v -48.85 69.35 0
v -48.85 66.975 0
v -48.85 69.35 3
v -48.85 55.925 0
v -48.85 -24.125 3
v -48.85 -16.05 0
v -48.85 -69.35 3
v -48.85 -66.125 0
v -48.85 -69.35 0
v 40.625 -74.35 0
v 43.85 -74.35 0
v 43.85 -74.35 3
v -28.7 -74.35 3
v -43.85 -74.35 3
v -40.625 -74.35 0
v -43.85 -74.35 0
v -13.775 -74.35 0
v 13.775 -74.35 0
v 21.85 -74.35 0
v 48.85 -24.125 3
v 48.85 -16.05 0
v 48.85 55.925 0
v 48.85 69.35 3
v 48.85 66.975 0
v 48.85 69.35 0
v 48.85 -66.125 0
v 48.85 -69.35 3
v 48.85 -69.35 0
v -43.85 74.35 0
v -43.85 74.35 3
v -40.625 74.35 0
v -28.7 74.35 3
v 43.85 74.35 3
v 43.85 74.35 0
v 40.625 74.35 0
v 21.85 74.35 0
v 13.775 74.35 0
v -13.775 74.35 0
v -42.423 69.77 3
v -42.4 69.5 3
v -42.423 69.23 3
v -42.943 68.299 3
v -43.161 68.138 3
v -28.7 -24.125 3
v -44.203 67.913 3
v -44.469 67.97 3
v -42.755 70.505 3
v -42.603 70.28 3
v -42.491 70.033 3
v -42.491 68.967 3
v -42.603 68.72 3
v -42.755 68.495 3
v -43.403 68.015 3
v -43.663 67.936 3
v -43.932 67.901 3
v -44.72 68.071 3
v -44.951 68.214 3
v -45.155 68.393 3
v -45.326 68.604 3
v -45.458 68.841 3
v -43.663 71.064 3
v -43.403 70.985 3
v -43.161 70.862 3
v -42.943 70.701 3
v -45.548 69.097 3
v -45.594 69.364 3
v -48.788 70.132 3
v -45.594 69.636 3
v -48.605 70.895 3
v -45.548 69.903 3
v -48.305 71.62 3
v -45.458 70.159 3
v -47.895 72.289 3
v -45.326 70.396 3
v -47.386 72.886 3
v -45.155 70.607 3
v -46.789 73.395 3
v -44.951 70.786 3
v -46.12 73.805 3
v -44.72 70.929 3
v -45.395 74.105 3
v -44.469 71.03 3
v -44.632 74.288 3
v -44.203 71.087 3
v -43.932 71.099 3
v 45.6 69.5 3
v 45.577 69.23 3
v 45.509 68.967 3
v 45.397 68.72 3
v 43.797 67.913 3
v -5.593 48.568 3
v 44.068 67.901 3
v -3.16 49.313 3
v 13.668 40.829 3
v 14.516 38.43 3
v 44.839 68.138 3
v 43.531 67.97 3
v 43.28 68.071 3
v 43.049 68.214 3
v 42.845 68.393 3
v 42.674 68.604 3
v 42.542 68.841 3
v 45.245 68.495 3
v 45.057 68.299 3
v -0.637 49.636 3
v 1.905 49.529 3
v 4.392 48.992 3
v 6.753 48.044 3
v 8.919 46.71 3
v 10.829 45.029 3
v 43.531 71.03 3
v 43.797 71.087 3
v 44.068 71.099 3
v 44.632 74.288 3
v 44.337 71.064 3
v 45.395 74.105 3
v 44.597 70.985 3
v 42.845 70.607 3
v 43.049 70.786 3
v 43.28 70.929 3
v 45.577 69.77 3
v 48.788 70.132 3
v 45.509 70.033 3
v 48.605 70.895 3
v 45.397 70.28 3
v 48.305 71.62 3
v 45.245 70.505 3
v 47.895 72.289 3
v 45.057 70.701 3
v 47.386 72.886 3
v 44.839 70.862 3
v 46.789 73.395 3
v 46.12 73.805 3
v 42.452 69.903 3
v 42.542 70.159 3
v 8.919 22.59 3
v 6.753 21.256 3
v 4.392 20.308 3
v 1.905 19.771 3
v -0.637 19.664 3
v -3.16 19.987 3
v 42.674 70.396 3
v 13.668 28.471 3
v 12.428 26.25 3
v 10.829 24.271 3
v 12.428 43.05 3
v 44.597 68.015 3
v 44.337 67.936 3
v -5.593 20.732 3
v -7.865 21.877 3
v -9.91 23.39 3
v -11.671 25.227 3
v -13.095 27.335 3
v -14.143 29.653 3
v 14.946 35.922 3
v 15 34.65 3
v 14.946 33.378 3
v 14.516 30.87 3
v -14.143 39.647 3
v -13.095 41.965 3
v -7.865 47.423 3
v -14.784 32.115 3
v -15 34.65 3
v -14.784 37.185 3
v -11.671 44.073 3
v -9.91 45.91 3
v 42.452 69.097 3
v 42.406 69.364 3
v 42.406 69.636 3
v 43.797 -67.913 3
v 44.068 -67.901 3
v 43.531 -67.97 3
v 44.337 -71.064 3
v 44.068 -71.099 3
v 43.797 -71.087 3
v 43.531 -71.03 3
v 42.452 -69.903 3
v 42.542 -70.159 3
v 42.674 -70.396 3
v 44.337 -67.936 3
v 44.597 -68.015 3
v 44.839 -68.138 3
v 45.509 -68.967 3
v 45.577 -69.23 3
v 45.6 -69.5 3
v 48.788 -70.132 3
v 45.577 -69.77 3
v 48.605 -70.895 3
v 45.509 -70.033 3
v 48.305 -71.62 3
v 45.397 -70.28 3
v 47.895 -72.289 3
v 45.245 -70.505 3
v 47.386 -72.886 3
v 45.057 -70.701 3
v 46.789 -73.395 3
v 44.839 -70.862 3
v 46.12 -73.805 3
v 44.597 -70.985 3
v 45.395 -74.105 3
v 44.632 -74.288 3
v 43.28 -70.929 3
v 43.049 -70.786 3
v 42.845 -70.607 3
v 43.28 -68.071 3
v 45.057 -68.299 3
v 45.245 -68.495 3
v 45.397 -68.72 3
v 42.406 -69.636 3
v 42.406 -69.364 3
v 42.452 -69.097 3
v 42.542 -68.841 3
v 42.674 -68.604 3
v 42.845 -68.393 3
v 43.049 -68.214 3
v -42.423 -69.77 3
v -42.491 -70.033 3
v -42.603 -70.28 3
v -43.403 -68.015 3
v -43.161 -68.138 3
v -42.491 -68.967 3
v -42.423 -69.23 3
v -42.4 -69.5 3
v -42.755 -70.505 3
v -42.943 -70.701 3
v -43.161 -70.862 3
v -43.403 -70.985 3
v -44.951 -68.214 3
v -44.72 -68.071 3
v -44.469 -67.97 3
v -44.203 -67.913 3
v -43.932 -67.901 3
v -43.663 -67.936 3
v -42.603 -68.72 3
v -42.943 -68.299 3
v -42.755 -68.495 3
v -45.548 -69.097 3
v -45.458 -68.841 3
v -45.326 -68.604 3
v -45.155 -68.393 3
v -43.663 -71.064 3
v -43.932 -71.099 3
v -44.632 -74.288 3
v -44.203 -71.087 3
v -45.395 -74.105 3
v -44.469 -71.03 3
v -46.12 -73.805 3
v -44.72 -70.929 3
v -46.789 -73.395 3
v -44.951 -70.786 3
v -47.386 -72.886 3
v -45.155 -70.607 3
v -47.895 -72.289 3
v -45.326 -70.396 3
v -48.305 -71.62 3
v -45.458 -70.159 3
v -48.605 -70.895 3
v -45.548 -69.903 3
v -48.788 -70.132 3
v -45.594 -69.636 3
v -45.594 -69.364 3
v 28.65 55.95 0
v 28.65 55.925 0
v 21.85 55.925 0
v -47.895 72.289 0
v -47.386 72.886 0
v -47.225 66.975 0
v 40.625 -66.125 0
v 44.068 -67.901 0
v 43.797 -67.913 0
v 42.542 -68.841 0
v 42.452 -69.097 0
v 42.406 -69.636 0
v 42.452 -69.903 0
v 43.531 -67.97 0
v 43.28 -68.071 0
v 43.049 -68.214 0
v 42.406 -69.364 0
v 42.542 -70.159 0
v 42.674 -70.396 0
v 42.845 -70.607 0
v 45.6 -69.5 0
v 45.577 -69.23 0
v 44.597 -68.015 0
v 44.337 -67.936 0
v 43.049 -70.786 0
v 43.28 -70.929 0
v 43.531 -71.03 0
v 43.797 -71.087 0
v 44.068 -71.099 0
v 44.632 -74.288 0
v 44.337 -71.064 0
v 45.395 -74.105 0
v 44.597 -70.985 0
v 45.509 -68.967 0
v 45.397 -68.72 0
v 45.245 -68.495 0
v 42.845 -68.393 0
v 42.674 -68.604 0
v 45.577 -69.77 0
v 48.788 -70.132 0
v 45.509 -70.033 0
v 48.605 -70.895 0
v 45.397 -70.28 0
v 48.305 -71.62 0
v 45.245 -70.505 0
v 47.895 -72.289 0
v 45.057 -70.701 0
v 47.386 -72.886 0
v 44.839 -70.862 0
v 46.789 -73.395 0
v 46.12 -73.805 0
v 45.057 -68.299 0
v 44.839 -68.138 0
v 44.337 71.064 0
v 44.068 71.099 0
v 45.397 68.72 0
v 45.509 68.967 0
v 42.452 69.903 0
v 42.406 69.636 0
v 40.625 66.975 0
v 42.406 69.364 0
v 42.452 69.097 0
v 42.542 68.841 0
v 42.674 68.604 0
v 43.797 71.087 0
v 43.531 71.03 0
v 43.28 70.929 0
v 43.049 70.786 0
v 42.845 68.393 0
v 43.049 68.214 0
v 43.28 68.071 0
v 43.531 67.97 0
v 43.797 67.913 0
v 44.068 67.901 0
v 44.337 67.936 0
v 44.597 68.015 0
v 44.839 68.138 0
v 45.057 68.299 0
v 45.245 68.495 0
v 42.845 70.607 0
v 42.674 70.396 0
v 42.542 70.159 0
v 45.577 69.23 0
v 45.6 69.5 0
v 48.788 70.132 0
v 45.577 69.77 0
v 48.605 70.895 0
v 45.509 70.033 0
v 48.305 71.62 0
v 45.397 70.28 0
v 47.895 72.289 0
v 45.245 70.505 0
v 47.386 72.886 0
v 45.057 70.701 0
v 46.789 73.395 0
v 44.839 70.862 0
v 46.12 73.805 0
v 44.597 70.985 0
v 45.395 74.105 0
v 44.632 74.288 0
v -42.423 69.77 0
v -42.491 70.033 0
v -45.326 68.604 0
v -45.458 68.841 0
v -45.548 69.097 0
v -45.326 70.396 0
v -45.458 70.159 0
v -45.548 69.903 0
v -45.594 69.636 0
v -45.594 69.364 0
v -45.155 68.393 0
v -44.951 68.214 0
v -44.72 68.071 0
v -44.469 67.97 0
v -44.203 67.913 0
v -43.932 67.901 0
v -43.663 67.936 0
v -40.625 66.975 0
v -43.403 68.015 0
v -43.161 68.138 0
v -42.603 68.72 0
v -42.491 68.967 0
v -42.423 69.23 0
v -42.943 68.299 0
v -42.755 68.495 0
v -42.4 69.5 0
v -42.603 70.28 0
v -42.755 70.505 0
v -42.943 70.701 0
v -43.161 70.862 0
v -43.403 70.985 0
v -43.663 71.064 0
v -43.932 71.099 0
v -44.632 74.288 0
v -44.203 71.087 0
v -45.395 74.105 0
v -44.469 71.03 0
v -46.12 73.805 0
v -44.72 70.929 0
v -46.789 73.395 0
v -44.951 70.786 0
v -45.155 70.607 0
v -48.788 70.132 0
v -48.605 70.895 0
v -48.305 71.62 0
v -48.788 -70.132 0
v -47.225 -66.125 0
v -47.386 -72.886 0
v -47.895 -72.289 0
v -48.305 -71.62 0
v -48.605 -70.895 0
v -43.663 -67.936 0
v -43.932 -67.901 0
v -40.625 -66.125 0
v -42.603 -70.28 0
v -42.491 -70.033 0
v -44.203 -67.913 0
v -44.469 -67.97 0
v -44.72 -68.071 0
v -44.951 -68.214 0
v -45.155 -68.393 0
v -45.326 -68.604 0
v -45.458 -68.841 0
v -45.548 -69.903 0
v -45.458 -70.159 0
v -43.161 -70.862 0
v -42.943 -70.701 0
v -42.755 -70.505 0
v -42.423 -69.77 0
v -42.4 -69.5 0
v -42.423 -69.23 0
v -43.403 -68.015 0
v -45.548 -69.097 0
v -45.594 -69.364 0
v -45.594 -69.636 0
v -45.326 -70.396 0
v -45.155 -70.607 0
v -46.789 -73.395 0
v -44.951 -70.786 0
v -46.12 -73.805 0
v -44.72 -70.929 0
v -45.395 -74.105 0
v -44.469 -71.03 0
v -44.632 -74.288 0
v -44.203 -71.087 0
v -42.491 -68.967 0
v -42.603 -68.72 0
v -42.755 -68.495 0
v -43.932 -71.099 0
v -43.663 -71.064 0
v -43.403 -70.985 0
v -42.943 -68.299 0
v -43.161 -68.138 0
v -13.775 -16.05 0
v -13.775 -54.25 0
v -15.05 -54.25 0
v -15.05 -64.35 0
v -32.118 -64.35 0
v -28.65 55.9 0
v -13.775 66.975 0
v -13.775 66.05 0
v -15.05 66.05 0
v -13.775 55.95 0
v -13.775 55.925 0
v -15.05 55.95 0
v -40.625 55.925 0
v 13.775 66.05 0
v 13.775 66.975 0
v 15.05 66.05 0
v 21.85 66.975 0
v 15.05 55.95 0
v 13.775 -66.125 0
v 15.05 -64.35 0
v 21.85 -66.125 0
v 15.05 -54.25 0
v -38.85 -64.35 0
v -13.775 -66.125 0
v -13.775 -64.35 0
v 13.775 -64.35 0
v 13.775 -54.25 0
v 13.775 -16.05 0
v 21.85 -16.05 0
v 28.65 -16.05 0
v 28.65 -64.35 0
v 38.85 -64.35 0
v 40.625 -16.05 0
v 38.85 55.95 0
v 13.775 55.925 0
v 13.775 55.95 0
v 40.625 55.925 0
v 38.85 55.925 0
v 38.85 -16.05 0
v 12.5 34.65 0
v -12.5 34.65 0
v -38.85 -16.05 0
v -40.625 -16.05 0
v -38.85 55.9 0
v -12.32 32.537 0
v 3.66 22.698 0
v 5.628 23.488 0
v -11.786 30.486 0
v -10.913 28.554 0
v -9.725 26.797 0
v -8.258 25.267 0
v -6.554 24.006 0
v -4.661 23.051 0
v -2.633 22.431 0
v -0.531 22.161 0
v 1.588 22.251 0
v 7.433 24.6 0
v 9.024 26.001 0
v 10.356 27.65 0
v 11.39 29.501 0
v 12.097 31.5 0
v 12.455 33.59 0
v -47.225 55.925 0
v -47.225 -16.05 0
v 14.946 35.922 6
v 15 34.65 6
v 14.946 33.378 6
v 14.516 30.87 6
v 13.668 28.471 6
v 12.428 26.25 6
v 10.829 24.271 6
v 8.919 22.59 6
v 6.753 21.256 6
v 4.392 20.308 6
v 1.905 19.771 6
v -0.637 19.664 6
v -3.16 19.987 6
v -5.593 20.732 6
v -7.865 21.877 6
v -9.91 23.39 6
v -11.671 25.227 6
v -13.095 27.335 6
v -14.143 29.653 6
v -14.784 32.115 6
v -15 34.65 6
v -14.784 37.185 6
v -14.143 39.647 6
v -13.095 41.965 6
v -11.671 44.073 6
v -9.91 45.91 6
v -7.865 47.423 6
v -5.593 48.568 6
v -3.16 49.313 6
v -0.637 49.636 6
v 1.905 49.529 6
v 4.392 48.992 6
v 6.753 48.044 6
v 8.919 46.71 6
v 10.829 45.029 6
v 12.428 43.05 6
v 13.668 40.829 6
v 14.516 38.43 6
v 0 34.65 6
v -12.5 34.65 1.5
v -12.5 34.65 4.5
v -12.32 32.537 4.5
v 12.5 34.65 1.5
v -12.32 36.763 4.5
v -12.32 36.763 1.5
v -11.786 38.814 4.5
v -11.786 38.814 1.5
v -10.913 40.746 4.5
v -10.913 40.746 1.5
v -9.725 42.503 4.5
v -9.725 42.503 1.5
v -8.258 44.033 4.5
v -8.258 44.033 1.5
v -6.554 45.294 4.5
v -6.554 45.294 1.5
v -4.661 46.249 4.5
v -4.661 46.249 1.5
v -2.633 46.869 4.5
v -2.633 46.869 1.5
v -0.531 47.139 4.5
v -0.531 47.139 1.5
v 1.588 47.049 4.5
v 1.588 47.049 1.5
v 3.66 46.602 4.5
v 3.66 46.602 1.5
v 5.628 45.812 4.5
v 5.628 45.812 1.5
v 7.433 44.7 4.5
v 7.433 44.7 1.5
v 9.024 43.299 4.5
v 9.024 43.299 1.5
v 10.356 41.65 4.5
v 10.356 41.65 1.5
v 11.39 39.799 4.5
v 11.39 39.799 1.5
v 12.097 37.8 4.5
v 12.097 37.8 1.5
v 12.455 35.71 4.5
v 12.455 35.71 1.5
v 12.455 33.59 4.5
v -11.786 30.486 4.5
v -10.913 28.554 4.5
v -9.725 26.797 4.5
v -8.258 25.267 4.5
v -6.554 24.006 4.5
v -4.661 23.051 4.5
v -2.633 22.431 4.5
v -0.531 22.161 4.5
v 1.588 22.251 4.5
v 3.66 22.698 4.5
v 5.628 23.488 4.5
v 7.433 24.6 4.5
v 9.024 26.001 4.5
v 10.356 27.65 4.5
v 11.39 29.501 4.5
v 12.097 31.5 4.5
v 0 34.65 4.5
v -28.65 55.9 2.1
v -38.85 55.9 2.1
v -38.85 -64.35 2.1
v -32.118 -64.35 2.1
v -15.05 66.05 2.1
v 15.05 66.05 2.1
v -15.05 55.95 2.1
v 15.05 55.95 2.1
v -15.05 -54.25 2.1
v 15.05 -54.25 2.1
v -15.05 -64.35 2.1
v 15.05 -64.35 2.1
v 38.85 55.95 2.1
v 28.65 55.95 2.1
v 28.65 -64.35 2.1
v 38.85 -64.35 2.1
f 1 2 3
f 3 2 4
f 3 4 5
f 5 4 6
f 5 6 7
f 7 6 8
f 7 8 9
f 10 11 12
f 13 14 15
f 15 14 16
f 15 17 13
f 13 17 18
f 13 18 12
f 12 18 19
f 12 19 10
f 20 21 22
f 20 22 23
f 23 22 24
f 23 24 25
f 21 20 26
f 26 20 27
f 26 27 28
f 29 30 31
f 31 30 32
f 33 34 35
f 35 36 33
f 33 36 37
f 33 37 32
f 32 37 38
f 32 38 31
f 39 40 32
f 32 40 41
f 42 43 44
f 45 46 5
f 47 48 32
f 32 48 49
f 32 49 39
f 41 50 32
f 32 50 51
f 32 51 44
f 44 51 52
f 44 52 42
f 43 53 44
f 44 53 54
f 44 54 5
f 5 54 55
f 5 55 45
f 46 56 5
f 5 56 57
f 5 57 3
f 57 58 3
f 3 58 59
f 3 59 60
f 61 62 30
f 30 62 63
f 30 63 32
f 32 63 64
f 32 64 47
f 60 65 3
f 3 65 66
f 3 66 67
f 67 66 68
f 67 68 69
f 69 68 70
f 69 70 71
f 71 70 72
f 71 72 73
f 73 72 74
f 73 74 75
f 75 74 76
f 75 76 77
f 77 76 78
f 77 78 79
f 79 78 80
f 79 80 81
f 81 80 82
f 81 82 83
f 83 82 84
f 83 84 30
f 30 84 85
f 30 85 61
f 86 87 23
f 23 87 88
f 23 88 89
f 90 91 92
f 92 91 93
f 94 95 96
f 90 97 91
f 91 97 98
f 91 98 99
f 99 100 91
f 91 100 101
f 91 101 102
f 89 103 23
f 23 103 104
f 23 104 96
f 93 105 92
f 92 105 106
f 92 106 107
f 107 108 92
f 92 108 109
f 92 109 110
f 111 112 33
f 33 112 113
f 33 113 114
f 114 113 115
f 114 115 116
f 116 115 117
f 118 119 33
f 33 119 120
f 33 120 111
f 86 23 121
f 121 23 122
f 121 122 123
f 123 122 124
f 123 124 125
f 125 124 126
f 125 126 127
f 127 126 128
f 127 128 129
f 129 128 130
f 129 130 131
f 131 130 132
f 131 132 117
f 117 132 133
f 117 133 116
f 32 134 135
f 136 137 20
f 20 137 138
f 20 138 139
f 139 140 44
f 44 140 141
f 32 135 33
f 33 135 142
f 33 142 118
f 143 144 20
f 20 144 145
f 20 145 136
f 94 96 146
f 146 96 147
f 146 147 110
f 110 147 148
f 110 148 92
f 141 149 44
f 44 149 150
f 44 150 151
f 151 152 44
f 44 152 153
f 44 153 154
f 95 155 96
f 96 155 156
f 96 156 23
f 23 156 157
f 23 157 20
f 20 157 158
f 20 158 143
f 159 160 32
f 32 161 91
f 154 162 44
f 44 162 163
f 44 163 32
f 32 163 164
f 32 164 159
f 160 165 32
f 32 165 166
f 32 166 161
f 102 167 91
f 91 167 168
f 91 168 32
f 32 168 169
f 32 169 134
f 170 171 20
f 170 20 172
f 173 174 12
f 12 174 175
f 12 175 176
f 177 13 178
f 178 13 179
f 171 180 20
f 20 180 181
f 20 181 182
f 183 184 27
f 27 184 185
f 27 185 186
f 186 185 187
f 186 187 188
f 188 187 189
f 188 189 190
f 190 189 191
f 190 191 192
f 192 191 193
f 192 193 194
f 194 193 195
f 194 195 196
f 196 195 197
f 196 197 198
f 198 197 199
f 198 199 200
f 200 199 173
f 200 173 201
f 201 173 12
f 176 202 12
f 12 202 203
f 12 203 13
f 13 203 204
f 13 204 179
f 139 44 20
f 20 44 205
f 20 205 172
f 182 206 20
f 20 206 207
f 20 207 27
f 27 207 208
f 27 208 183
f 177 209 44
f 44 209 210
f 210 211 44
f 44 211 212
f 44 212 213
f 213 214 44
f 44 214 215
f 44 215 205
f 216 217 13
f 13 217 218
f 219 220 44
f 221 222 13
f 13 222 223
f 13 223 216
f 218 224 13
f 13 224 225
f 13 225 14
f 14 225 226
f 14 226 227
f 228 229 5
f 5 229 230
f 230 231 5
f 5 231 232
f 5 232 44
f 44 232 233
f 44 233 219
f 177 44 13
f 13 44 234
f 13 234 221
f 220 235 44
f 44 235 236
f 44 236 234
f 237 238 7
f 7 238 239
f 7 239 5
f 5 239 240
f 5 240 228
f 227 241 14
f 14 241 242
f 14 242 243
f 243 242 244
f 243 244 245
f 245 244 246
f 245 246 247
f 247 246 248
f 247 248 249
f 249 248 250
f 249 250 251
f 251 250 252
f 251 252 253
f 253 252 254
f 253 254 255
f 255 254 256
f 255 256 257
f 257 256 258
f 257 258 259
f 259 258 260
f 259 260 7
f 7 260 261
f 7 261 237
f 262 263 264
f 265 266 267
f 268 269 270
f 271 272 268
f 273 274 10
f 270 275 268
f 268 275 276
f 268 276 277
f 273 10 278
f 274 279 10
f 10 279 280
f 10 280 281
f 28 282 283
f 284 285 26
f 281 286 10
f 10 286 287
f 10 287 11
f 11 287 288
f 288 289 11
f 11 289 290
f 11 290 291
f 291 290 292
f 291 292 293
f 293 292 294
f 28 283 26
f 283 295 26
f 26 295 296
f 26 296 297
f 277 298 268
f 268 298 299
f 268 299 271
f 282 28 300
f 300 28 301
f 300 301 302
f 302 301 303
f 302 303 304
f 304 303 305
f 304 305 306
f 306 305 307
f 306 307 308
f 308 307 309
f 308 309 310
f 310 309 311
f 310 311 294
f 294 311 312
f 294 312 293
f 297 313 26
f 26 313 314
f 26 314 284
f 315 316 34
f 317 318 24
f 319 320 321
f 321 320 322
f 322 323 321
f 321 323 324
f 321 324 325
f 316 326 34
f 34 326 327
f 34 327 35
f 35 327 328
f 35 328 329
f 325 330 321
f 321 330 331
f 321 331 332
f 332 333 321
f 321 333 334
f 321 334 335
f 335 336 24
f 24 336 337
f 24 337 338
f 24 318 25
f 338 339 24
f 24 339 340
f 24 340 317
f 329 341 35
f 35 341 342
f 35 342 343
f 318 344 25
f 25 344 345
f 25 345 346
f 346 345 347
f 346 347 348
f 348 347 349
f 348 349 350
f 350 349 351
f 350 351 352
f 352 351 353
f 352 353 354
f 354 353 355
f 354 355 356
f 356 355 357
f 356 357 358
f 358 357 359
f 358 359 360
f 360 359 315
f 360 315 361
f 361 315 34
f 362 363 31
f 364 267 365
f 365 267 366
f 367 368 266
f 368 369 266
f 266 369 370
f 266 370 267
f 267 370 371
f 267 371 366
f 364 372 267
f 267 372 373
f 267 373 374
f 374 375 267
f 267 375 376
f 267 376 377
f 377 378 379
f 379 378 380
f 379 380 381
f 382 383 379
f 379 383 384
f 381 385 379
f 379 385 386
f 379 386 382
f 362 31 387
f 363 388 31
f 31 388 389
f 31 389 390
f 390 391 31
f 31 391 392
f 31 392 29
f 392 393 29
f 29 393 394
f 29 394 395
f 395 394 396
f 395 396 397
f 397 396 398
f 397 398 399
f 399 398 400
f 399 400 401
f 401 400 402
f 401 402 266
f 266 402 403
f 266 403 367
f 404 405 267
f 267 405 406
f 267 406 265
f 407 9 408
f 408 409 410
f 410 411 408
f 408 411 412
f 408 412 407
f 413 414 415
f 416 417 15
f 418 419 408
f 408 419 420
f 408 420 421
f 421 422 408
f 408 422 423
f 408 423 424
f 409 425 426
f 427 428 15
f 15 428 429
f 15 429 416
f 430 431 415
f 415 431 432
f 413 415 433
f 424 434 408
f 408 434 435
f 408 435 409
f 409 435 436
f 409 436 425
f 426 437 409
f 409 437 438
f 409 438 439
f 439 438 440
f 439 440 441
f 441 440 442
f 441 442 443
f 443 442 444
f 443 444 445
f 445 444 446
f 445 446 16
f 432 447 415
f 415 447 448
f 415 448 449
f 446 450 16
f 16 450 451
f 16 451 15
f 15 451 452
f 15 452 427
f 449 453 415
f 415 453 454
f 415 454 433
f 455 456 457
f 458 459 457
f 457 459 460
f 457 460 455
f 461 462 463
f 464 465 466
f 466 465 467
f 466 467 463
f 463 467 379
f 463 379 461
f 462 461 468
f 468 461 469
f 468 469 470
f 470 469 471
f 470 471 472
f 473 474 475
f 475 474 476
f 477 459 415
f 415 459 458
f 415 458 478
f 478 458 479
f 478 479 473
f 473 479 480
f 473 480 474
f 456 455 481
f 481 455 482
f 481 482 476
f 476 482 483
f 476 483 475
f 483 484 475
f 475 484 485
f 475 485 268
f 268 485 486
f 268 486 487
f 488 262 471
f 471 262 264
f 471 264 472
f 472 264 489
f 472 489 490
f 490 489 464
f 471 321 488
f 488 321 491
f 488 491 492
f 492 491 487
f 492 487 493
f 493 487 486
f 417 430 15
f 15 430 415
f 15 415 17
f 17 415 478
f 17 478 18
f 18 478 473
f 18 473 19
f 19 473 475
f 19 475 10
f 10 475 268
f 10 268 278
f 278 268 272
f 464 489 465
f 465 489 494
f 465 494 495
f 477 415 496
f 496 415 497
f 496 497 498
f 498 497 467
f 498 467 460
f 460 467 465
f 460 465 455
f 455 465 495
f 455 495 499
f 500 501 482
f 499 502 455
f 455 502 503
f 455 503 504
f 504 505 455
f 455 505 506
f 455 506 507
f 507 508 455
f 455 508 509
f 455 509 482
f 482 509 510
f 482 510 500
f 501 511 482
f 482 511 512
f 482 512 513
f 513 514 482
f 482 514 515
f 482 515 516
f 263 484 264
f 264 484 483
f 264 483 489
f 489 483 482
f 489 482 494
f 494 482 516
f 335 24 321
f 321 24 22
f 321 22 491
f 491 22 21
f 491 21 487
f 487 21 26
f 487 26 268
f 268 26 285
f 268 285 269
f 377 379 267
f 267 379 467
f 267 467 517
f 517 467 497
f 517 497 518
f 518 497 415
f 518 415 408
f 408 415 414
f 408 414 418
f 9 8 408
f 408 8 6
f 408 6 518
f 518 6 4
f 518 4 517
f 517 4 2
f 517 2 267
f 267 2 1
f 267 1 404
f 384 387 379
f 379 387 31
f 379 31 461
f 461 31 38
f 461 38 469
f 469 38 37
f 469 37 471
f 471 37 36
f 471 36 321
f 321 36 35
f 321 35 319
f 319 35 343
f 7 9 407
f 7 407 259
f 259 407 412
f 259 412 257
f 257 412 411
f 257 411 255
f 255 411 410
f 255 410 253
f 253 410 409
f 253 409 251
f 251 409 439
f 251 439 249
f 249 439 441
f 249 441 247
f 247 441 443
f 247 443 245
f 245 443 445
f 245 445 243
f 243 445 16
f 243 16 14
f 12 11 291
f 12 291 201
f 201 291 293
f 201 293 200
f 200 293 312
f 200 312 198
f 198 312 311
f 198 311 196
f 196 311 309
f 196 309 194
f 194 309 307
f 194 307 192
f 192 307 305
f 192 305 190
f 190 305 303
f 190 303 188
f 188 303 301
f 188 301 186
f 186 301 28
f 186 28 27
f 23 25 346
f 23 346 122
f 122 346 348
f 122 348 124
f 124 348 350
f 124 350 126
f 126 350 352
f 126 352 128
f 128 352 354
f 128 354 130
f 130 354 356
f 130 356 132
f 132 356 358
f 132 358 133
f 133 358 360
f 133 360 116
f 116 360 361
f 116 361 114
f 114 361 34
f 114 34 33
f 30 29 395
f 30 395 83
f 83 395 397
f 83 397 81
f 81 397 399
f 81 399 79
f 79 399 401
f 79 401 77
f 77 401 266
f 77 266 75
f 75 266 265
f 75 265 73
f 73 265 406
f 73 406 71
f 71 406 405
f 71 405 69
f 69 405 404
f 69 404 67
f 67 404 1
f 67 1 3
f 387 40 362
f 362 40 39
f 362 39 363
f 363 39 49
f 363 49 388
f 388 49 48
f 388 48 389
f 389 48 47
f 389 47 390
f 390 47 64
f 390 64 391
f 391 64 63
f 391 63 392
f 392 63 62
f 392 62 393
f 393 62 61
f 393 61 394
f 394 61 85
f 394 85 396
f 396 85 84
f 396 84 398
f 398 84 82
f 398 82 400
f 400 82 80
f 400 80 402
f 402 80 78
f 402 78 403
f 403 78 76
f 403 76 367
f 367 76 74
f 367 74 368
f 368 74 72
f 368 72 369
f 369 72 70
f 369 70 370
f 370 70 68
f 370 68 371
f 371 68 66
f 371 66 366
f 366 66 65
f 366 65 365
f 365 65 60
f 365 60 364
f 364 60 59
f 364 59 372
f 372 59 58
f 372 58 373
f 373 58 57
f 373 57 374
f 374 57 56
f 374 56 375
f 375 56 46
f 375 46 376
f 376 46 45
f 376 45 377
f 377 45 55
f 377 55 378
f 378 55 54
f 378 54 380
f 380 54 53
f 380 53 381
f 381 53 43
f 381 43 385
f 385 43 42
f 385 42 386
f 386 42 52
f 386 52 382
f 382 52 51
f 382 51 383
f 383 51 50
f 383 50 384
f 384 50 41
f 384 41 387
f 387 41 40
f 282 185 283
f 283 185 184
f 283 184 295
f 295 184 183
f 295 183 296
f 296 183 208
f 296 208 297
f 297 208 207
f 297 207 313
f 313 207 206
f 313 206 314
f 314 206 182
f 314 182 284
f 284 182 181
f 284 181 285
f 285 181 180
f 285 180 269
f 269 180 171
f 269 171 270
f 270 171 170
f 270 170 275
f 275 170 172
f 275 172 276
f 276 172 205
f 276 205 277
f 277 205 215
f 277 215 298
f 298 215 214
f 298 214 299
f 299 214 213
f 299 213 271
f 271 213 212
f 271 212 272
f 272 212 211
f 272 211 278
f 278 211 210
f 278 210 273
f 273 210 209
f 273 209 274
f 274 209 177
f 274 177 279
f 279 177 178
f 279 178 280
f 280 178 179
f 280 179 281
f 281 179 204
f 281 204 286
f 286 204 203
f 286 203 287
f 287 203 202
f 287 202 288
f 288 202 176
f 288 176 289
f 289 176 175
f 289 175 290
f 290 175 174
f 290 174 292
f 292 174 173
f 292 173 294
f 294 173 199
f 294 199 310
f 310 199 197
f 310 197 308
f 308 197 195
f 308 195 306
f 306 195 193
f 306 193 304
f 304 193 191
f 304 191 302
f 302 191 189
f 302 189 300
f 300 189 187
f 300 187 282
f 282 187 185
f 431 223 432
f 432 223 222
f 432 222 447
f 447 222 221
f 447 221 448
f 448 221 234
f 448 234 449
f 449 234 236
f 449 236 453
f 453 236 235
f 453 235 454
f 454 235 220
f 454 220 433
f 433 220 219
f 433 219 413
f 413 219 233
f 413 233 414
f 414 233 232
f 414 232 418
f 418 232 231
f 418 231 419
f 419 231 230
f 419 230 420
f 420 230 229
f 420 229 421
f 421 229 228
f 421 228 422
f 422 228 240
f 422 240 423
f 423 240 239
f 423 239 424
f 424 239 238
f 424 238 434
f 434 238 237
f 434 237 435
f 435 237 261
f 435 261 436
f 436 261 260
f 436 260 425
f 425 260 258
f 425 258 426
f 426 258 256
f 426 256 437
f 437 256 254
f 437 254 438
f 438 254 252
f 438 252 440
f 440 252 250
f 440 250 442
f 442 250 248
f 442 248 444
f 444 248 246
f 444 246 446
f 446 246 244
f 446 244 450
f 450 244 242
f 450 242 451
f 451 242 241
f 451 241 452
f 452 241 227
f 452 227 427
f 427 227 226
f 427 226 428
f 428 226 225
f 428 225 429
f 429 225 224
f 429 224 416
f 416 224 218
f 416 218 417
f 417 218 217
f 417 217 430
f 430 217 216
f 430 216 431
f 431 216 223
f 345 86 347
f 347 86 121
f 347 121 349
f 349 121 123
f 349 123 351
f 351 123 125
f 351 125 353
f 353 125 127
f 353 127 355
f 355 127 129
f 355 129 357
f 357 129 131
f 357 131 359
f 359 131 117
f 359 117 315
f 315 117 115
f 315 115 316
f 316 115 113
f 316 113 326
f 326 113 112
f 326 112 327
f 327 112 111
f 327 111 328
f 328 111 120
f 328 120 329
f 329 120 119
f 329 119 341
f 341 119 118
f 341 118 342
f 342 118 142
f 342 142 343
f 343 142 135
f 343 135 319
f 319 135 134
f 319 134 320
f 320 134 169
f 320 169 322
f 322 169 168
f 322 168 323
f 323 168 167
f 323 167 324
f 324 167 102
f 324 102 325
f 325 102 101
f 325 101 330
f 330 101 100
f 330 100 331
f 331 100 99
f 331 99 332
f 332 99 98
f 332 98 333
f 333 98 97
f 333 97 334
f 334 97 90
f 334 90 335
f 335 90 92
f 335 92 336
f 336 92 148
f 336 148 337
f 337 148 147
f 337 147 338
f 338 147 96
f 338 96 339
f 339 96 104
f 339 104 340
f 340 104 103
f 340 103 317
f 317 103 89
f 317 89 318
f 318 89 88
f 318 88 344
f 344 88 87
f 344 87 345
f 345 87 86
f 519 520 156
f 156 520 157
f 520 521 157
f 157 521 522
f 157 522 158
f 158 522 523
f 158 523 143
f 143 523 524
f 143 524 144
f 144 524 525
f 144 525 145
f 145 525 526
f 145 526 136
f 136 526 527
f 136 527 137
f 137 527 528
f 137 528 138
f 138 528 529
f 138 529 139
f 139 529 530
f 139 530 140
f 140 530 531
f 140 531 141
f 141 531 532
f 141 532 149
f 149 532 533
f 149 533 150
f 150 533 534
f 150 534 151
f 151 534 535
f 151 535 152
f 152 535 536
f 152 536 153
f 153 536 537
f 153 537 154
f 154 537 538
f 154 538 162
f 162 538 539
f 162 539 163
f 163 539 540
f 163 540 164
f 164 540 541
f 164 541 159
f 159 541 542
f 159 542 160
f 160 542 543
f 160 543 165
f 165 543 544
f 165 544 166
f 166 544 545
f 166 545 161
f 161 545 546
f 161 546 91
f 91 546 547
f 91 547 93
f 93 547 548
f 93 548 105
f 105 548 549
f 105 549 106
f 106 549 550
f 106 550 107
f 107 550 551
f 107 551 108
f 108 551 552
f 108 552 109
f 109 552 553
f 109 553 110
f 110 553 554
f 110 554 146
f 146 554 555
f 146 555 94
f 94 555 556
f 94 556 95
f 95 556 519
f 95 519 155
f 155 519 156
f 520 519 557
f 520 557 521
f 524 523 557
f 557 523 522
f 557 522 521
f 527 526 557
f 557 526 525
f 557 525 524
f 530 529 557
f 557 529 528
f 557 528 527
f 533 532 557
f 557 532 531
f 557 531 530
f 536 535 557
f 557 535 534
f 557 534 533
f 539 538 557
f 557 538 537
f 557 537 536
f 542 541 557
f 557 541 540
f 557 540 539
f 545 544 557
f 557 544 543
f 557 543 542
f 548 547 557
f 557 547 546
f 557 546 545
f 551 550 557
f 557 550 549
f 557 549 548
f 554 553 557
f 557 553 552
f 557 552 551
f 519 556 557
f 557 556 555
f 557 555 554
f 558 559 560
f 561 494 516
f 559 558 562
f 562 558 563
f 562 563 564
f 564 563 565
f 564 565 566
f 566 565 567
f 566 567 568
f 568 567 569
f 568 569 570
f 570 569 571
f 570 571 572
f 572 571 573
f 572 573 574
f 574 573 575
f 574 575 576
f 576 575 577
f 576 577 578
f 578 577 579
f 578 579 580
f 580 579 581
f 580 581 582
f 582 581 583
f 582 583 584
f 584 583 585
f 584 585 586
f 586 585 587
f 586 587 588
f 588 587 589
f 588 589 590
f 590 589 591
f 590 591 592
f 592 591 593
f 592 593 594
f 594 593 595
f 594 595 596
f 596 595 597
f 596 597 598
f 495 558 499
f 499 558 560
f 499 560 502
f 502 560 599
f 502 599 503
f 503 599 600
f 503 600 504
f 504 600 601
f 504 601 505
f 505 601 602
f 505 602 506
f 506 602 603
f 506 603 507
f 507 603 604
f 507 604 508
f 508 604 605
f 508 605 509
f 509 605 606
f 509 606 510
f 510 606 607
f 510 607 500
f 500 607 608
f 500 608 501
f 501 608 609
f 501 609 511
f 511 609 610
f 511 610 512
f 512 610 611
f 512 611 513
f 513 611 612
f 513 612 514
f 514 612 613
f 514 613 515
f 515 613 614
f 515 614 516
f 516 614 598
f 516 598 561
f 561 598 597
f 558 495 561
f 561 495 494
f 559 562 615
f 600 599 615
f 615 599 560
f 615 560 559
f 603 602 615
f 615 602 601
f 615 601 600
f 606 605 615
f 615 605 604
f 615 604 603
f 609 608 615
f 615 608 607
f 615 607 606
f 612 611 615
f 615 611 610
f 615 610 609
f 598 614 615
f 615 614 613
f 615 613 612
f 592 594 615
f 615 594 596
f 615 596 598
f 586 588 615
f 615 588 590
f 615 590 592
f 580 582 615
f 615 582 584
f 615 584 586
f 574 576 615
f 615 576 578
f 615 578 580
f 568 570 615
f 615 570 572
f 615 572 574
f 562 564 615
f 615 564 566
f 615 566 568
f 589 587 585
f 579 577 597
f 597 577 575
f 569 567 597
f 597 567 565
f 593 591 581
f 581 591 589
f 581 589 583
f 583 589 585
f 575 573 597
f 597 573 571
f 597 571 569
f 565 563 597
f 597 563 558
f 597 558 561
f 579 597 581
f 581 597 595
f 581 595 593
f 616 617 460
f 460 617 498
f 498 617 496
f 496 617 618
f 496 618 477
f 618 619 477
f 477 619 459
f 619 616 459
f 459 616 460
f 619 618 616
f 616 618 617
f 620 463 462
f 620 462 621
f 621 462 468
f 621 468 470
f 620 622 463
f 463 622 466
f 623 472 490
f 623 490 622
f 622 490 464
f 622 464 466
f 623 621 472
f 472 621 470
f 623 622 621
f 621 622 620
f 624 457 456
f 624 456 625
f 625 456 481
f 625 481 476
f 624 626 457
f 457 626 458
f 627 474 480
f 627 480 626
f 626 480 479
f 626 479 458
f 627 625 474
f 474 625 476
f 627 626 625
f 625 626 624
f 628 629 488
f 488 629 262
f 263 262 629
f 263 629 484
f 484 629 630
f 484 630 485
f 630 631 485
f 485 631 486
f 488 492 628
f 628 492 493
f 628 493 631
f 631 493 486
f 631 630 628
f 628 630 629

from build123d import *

# Parameters (mm, degrees)
SKETCH_1_W          = 97.7
SKETCH_1_H          = 148.7
EXTRUDE_1_DEPTH     = 3
FILLET_1_R          = 5
CUT_EXTRUDE_1_REACH = 91.013
SKETCH_2_R          = 1.6
SKETCH_3_R          = 15
EXTRUDE_2_DEPTH     = 3
CUT_EXTRUDE_2_DEPTH = 4.5
CUT_EXTRUDE_START   = 3
SKETCH_5_R          = 12.5
CUT_EXTRUDE_3_DEPTH = 3
SKETCH_6_W          = 10.2
SKETCH_6_H          = 120.3
SKETCH_6_W_2        = 30.1
SKETCH_6_H_2        = 10.1
CUT_EXTRUDE_4_DEPTH = 2.1


with BuildPart() as part:
    # 草图1 → 凸台-拉伸1 (new body)
    with BuildSketch(Plane.XY):
        Rectangle(SKETCH_1_W, SKETCH_1_H)
    extrude(amount=EXTRUDE_1_DEPTH)

    # 圆角1
    fillet_1_edges = [part.edges().sort_by_distance(p)[0] for p in [
        (-48.85, 74.35, 1.5),
        (48.85, 74.35, 1.5),
        (48.85, -74.35, 1.5),
        (-48.85, -74.35, 1.5),
    ]]
    fillet(fillet_1_edges, radius=FILLET_1_R)

    # 草图2 → 切除-拉伸1 (cut, up to next)
    with BuildSketch(Plane.XY.offset(3), mode=Mode.PRIVATE) as cut_extrude_1_sk1:
        with Locations((-44, 69.5)):
            Circle(SKETCH_2_R)
    cut_extrude_1_tool1 = extrude(cut_extrude_1_sk1.sketch, amount=-CUT_EXTRUDE_1_REACH, mode=Mode.PRIVATE) & part.part
    # 草图2 → 切除-拉伸1 (cut, up to next)
    with BuildSketch(Plane.XY.offset(3), mode=Mode.PRIVATE) as cut_extrude_1_sk2:
        with Locations((44, 69.5)):
            Circle(SKETCH_2_R)
    cut_extrude_1_tool2 = extrude(cut_extrude_1_sk2.sketch, amount=-CUT_EXTRUDE_1_REACH, mode=Mode.PRIVATE) & part.part
    # 草图2 → 切除-拉伸1 (cut, up to next)
    with BuildSketch(Plane.XY.offset(3), mode=Mode.PRIVATE) as cut_extrude_1_sk3:
        with Locations((-44, -69.5)):
            Circle(SKETCH_2_R)
    cut_extrude_1_tool3 = extrude(cut_extrude_1_sk3.sketch, amount=-CUT_EXTRUDE_1_REACH, mode=Mode.PRIVATE) & part.part
    # 草图2 → 切除-拉伸1 (cut, up to next)
    with BuildSketch(Plane.XY.offset(3), mode=Mode.PRIVATE) as cut_extrude_1_sk4:
        with Locations((44, -69.5)):
            Circle(SKETCH_2_R)
    cut_extrude_1_tool4 = extrude(cut_extrude_1_sk4.sketch, amount=-CUT_EXTRUDE_1_REACH, mode=Mode.PRIVATE) & part.part
    add(cut_extrude_1_tool1.solids().sort_by_distance((-44, 69.5, 3))[0], mode=Mode.SUBTRACT)
    add(cut_extrude_1_tool2.solids().sort_by_distance((44, 69.5, 3))[0], mode=Mode.SUBTRACT)
    add(cut_extrude_1_tool3.solids().sort_by_distance((-44, -69.5, 3))[0], mode=Mode.SUBTRACT)
    add(cut_extrude_1_tool4.solids().sort_by_distance((44, -69.5, 3))[0], mode=Mode.SUBTRACT)

    # 草图3 → 凸台-拉伸2 (add)
    with BuildSketch(Plane.XY.offset(3)):
        with Locations((0, 34.65)):
            Circle(SKETCH_3_R)
    extrude(amount=EXTRUDE_2_DEPTH)

    # 草图4 → 切除-拉伸2 (cut)
    with BuildSketch(Plane(origin=(0, 0, 0), x_dir=(-1, 0, 0), z_dir=(0, 0, -1))):
        with BuildLine():
            Line((-12.5, 34.65), (12.5, 34.65))
            ThreePointArc((12.5, 34.65), (0, 22.15), (-12.5, 34.65))
        make_face()
    extrude(amount=-CUT_EXTRUDE_2_DEPTH, mode=Mode.SUBTRACT)

    # 草图5 → 切除-拉伸3 (cut)
    with BuildSketch(Plane(origin=(0, 0, 4.5), x_dir=(-1, 0, 0), z_dir=(0, 0, -1)).offset(CUT_EXTRUDE_START)):
        with Locations((0, 34.65)):
            Circle(SKETCH_5_R)
    extrude(amount=-CUT_EXTRUDE_3_DEPTH, mode=Mode.SUBTRACT)

    # 草图6 → 切除-拉伸4 (cut)
    with BuildSketch(Plane(origin=(0, 0, 0), x_dir=(-1, 0, 0), z_dir=(0, 0, -1))):
        with Locations((-33.75, -4.2)):
            Rectangle(SKETCH_6_W, SKETCH_6_H)
        Polygon((28.65, 55.9), (32.118068627, -64.35), (38.85, -64.35), (38.85, 55.9), align=None)
        with Locations((0, 61)):
            Rectangle(SKETCH_6_W_2, SKETCH_6_H_2)
        with Locations((0, -59.3)):
            Rectangle(SKETCH_6_W_2, SKETCH_6_H_2)
    extrude(amount=-CUT_EXTRUDE_4_DEPTH, mode=Mode.SUBTRACT)


solid = part.part
